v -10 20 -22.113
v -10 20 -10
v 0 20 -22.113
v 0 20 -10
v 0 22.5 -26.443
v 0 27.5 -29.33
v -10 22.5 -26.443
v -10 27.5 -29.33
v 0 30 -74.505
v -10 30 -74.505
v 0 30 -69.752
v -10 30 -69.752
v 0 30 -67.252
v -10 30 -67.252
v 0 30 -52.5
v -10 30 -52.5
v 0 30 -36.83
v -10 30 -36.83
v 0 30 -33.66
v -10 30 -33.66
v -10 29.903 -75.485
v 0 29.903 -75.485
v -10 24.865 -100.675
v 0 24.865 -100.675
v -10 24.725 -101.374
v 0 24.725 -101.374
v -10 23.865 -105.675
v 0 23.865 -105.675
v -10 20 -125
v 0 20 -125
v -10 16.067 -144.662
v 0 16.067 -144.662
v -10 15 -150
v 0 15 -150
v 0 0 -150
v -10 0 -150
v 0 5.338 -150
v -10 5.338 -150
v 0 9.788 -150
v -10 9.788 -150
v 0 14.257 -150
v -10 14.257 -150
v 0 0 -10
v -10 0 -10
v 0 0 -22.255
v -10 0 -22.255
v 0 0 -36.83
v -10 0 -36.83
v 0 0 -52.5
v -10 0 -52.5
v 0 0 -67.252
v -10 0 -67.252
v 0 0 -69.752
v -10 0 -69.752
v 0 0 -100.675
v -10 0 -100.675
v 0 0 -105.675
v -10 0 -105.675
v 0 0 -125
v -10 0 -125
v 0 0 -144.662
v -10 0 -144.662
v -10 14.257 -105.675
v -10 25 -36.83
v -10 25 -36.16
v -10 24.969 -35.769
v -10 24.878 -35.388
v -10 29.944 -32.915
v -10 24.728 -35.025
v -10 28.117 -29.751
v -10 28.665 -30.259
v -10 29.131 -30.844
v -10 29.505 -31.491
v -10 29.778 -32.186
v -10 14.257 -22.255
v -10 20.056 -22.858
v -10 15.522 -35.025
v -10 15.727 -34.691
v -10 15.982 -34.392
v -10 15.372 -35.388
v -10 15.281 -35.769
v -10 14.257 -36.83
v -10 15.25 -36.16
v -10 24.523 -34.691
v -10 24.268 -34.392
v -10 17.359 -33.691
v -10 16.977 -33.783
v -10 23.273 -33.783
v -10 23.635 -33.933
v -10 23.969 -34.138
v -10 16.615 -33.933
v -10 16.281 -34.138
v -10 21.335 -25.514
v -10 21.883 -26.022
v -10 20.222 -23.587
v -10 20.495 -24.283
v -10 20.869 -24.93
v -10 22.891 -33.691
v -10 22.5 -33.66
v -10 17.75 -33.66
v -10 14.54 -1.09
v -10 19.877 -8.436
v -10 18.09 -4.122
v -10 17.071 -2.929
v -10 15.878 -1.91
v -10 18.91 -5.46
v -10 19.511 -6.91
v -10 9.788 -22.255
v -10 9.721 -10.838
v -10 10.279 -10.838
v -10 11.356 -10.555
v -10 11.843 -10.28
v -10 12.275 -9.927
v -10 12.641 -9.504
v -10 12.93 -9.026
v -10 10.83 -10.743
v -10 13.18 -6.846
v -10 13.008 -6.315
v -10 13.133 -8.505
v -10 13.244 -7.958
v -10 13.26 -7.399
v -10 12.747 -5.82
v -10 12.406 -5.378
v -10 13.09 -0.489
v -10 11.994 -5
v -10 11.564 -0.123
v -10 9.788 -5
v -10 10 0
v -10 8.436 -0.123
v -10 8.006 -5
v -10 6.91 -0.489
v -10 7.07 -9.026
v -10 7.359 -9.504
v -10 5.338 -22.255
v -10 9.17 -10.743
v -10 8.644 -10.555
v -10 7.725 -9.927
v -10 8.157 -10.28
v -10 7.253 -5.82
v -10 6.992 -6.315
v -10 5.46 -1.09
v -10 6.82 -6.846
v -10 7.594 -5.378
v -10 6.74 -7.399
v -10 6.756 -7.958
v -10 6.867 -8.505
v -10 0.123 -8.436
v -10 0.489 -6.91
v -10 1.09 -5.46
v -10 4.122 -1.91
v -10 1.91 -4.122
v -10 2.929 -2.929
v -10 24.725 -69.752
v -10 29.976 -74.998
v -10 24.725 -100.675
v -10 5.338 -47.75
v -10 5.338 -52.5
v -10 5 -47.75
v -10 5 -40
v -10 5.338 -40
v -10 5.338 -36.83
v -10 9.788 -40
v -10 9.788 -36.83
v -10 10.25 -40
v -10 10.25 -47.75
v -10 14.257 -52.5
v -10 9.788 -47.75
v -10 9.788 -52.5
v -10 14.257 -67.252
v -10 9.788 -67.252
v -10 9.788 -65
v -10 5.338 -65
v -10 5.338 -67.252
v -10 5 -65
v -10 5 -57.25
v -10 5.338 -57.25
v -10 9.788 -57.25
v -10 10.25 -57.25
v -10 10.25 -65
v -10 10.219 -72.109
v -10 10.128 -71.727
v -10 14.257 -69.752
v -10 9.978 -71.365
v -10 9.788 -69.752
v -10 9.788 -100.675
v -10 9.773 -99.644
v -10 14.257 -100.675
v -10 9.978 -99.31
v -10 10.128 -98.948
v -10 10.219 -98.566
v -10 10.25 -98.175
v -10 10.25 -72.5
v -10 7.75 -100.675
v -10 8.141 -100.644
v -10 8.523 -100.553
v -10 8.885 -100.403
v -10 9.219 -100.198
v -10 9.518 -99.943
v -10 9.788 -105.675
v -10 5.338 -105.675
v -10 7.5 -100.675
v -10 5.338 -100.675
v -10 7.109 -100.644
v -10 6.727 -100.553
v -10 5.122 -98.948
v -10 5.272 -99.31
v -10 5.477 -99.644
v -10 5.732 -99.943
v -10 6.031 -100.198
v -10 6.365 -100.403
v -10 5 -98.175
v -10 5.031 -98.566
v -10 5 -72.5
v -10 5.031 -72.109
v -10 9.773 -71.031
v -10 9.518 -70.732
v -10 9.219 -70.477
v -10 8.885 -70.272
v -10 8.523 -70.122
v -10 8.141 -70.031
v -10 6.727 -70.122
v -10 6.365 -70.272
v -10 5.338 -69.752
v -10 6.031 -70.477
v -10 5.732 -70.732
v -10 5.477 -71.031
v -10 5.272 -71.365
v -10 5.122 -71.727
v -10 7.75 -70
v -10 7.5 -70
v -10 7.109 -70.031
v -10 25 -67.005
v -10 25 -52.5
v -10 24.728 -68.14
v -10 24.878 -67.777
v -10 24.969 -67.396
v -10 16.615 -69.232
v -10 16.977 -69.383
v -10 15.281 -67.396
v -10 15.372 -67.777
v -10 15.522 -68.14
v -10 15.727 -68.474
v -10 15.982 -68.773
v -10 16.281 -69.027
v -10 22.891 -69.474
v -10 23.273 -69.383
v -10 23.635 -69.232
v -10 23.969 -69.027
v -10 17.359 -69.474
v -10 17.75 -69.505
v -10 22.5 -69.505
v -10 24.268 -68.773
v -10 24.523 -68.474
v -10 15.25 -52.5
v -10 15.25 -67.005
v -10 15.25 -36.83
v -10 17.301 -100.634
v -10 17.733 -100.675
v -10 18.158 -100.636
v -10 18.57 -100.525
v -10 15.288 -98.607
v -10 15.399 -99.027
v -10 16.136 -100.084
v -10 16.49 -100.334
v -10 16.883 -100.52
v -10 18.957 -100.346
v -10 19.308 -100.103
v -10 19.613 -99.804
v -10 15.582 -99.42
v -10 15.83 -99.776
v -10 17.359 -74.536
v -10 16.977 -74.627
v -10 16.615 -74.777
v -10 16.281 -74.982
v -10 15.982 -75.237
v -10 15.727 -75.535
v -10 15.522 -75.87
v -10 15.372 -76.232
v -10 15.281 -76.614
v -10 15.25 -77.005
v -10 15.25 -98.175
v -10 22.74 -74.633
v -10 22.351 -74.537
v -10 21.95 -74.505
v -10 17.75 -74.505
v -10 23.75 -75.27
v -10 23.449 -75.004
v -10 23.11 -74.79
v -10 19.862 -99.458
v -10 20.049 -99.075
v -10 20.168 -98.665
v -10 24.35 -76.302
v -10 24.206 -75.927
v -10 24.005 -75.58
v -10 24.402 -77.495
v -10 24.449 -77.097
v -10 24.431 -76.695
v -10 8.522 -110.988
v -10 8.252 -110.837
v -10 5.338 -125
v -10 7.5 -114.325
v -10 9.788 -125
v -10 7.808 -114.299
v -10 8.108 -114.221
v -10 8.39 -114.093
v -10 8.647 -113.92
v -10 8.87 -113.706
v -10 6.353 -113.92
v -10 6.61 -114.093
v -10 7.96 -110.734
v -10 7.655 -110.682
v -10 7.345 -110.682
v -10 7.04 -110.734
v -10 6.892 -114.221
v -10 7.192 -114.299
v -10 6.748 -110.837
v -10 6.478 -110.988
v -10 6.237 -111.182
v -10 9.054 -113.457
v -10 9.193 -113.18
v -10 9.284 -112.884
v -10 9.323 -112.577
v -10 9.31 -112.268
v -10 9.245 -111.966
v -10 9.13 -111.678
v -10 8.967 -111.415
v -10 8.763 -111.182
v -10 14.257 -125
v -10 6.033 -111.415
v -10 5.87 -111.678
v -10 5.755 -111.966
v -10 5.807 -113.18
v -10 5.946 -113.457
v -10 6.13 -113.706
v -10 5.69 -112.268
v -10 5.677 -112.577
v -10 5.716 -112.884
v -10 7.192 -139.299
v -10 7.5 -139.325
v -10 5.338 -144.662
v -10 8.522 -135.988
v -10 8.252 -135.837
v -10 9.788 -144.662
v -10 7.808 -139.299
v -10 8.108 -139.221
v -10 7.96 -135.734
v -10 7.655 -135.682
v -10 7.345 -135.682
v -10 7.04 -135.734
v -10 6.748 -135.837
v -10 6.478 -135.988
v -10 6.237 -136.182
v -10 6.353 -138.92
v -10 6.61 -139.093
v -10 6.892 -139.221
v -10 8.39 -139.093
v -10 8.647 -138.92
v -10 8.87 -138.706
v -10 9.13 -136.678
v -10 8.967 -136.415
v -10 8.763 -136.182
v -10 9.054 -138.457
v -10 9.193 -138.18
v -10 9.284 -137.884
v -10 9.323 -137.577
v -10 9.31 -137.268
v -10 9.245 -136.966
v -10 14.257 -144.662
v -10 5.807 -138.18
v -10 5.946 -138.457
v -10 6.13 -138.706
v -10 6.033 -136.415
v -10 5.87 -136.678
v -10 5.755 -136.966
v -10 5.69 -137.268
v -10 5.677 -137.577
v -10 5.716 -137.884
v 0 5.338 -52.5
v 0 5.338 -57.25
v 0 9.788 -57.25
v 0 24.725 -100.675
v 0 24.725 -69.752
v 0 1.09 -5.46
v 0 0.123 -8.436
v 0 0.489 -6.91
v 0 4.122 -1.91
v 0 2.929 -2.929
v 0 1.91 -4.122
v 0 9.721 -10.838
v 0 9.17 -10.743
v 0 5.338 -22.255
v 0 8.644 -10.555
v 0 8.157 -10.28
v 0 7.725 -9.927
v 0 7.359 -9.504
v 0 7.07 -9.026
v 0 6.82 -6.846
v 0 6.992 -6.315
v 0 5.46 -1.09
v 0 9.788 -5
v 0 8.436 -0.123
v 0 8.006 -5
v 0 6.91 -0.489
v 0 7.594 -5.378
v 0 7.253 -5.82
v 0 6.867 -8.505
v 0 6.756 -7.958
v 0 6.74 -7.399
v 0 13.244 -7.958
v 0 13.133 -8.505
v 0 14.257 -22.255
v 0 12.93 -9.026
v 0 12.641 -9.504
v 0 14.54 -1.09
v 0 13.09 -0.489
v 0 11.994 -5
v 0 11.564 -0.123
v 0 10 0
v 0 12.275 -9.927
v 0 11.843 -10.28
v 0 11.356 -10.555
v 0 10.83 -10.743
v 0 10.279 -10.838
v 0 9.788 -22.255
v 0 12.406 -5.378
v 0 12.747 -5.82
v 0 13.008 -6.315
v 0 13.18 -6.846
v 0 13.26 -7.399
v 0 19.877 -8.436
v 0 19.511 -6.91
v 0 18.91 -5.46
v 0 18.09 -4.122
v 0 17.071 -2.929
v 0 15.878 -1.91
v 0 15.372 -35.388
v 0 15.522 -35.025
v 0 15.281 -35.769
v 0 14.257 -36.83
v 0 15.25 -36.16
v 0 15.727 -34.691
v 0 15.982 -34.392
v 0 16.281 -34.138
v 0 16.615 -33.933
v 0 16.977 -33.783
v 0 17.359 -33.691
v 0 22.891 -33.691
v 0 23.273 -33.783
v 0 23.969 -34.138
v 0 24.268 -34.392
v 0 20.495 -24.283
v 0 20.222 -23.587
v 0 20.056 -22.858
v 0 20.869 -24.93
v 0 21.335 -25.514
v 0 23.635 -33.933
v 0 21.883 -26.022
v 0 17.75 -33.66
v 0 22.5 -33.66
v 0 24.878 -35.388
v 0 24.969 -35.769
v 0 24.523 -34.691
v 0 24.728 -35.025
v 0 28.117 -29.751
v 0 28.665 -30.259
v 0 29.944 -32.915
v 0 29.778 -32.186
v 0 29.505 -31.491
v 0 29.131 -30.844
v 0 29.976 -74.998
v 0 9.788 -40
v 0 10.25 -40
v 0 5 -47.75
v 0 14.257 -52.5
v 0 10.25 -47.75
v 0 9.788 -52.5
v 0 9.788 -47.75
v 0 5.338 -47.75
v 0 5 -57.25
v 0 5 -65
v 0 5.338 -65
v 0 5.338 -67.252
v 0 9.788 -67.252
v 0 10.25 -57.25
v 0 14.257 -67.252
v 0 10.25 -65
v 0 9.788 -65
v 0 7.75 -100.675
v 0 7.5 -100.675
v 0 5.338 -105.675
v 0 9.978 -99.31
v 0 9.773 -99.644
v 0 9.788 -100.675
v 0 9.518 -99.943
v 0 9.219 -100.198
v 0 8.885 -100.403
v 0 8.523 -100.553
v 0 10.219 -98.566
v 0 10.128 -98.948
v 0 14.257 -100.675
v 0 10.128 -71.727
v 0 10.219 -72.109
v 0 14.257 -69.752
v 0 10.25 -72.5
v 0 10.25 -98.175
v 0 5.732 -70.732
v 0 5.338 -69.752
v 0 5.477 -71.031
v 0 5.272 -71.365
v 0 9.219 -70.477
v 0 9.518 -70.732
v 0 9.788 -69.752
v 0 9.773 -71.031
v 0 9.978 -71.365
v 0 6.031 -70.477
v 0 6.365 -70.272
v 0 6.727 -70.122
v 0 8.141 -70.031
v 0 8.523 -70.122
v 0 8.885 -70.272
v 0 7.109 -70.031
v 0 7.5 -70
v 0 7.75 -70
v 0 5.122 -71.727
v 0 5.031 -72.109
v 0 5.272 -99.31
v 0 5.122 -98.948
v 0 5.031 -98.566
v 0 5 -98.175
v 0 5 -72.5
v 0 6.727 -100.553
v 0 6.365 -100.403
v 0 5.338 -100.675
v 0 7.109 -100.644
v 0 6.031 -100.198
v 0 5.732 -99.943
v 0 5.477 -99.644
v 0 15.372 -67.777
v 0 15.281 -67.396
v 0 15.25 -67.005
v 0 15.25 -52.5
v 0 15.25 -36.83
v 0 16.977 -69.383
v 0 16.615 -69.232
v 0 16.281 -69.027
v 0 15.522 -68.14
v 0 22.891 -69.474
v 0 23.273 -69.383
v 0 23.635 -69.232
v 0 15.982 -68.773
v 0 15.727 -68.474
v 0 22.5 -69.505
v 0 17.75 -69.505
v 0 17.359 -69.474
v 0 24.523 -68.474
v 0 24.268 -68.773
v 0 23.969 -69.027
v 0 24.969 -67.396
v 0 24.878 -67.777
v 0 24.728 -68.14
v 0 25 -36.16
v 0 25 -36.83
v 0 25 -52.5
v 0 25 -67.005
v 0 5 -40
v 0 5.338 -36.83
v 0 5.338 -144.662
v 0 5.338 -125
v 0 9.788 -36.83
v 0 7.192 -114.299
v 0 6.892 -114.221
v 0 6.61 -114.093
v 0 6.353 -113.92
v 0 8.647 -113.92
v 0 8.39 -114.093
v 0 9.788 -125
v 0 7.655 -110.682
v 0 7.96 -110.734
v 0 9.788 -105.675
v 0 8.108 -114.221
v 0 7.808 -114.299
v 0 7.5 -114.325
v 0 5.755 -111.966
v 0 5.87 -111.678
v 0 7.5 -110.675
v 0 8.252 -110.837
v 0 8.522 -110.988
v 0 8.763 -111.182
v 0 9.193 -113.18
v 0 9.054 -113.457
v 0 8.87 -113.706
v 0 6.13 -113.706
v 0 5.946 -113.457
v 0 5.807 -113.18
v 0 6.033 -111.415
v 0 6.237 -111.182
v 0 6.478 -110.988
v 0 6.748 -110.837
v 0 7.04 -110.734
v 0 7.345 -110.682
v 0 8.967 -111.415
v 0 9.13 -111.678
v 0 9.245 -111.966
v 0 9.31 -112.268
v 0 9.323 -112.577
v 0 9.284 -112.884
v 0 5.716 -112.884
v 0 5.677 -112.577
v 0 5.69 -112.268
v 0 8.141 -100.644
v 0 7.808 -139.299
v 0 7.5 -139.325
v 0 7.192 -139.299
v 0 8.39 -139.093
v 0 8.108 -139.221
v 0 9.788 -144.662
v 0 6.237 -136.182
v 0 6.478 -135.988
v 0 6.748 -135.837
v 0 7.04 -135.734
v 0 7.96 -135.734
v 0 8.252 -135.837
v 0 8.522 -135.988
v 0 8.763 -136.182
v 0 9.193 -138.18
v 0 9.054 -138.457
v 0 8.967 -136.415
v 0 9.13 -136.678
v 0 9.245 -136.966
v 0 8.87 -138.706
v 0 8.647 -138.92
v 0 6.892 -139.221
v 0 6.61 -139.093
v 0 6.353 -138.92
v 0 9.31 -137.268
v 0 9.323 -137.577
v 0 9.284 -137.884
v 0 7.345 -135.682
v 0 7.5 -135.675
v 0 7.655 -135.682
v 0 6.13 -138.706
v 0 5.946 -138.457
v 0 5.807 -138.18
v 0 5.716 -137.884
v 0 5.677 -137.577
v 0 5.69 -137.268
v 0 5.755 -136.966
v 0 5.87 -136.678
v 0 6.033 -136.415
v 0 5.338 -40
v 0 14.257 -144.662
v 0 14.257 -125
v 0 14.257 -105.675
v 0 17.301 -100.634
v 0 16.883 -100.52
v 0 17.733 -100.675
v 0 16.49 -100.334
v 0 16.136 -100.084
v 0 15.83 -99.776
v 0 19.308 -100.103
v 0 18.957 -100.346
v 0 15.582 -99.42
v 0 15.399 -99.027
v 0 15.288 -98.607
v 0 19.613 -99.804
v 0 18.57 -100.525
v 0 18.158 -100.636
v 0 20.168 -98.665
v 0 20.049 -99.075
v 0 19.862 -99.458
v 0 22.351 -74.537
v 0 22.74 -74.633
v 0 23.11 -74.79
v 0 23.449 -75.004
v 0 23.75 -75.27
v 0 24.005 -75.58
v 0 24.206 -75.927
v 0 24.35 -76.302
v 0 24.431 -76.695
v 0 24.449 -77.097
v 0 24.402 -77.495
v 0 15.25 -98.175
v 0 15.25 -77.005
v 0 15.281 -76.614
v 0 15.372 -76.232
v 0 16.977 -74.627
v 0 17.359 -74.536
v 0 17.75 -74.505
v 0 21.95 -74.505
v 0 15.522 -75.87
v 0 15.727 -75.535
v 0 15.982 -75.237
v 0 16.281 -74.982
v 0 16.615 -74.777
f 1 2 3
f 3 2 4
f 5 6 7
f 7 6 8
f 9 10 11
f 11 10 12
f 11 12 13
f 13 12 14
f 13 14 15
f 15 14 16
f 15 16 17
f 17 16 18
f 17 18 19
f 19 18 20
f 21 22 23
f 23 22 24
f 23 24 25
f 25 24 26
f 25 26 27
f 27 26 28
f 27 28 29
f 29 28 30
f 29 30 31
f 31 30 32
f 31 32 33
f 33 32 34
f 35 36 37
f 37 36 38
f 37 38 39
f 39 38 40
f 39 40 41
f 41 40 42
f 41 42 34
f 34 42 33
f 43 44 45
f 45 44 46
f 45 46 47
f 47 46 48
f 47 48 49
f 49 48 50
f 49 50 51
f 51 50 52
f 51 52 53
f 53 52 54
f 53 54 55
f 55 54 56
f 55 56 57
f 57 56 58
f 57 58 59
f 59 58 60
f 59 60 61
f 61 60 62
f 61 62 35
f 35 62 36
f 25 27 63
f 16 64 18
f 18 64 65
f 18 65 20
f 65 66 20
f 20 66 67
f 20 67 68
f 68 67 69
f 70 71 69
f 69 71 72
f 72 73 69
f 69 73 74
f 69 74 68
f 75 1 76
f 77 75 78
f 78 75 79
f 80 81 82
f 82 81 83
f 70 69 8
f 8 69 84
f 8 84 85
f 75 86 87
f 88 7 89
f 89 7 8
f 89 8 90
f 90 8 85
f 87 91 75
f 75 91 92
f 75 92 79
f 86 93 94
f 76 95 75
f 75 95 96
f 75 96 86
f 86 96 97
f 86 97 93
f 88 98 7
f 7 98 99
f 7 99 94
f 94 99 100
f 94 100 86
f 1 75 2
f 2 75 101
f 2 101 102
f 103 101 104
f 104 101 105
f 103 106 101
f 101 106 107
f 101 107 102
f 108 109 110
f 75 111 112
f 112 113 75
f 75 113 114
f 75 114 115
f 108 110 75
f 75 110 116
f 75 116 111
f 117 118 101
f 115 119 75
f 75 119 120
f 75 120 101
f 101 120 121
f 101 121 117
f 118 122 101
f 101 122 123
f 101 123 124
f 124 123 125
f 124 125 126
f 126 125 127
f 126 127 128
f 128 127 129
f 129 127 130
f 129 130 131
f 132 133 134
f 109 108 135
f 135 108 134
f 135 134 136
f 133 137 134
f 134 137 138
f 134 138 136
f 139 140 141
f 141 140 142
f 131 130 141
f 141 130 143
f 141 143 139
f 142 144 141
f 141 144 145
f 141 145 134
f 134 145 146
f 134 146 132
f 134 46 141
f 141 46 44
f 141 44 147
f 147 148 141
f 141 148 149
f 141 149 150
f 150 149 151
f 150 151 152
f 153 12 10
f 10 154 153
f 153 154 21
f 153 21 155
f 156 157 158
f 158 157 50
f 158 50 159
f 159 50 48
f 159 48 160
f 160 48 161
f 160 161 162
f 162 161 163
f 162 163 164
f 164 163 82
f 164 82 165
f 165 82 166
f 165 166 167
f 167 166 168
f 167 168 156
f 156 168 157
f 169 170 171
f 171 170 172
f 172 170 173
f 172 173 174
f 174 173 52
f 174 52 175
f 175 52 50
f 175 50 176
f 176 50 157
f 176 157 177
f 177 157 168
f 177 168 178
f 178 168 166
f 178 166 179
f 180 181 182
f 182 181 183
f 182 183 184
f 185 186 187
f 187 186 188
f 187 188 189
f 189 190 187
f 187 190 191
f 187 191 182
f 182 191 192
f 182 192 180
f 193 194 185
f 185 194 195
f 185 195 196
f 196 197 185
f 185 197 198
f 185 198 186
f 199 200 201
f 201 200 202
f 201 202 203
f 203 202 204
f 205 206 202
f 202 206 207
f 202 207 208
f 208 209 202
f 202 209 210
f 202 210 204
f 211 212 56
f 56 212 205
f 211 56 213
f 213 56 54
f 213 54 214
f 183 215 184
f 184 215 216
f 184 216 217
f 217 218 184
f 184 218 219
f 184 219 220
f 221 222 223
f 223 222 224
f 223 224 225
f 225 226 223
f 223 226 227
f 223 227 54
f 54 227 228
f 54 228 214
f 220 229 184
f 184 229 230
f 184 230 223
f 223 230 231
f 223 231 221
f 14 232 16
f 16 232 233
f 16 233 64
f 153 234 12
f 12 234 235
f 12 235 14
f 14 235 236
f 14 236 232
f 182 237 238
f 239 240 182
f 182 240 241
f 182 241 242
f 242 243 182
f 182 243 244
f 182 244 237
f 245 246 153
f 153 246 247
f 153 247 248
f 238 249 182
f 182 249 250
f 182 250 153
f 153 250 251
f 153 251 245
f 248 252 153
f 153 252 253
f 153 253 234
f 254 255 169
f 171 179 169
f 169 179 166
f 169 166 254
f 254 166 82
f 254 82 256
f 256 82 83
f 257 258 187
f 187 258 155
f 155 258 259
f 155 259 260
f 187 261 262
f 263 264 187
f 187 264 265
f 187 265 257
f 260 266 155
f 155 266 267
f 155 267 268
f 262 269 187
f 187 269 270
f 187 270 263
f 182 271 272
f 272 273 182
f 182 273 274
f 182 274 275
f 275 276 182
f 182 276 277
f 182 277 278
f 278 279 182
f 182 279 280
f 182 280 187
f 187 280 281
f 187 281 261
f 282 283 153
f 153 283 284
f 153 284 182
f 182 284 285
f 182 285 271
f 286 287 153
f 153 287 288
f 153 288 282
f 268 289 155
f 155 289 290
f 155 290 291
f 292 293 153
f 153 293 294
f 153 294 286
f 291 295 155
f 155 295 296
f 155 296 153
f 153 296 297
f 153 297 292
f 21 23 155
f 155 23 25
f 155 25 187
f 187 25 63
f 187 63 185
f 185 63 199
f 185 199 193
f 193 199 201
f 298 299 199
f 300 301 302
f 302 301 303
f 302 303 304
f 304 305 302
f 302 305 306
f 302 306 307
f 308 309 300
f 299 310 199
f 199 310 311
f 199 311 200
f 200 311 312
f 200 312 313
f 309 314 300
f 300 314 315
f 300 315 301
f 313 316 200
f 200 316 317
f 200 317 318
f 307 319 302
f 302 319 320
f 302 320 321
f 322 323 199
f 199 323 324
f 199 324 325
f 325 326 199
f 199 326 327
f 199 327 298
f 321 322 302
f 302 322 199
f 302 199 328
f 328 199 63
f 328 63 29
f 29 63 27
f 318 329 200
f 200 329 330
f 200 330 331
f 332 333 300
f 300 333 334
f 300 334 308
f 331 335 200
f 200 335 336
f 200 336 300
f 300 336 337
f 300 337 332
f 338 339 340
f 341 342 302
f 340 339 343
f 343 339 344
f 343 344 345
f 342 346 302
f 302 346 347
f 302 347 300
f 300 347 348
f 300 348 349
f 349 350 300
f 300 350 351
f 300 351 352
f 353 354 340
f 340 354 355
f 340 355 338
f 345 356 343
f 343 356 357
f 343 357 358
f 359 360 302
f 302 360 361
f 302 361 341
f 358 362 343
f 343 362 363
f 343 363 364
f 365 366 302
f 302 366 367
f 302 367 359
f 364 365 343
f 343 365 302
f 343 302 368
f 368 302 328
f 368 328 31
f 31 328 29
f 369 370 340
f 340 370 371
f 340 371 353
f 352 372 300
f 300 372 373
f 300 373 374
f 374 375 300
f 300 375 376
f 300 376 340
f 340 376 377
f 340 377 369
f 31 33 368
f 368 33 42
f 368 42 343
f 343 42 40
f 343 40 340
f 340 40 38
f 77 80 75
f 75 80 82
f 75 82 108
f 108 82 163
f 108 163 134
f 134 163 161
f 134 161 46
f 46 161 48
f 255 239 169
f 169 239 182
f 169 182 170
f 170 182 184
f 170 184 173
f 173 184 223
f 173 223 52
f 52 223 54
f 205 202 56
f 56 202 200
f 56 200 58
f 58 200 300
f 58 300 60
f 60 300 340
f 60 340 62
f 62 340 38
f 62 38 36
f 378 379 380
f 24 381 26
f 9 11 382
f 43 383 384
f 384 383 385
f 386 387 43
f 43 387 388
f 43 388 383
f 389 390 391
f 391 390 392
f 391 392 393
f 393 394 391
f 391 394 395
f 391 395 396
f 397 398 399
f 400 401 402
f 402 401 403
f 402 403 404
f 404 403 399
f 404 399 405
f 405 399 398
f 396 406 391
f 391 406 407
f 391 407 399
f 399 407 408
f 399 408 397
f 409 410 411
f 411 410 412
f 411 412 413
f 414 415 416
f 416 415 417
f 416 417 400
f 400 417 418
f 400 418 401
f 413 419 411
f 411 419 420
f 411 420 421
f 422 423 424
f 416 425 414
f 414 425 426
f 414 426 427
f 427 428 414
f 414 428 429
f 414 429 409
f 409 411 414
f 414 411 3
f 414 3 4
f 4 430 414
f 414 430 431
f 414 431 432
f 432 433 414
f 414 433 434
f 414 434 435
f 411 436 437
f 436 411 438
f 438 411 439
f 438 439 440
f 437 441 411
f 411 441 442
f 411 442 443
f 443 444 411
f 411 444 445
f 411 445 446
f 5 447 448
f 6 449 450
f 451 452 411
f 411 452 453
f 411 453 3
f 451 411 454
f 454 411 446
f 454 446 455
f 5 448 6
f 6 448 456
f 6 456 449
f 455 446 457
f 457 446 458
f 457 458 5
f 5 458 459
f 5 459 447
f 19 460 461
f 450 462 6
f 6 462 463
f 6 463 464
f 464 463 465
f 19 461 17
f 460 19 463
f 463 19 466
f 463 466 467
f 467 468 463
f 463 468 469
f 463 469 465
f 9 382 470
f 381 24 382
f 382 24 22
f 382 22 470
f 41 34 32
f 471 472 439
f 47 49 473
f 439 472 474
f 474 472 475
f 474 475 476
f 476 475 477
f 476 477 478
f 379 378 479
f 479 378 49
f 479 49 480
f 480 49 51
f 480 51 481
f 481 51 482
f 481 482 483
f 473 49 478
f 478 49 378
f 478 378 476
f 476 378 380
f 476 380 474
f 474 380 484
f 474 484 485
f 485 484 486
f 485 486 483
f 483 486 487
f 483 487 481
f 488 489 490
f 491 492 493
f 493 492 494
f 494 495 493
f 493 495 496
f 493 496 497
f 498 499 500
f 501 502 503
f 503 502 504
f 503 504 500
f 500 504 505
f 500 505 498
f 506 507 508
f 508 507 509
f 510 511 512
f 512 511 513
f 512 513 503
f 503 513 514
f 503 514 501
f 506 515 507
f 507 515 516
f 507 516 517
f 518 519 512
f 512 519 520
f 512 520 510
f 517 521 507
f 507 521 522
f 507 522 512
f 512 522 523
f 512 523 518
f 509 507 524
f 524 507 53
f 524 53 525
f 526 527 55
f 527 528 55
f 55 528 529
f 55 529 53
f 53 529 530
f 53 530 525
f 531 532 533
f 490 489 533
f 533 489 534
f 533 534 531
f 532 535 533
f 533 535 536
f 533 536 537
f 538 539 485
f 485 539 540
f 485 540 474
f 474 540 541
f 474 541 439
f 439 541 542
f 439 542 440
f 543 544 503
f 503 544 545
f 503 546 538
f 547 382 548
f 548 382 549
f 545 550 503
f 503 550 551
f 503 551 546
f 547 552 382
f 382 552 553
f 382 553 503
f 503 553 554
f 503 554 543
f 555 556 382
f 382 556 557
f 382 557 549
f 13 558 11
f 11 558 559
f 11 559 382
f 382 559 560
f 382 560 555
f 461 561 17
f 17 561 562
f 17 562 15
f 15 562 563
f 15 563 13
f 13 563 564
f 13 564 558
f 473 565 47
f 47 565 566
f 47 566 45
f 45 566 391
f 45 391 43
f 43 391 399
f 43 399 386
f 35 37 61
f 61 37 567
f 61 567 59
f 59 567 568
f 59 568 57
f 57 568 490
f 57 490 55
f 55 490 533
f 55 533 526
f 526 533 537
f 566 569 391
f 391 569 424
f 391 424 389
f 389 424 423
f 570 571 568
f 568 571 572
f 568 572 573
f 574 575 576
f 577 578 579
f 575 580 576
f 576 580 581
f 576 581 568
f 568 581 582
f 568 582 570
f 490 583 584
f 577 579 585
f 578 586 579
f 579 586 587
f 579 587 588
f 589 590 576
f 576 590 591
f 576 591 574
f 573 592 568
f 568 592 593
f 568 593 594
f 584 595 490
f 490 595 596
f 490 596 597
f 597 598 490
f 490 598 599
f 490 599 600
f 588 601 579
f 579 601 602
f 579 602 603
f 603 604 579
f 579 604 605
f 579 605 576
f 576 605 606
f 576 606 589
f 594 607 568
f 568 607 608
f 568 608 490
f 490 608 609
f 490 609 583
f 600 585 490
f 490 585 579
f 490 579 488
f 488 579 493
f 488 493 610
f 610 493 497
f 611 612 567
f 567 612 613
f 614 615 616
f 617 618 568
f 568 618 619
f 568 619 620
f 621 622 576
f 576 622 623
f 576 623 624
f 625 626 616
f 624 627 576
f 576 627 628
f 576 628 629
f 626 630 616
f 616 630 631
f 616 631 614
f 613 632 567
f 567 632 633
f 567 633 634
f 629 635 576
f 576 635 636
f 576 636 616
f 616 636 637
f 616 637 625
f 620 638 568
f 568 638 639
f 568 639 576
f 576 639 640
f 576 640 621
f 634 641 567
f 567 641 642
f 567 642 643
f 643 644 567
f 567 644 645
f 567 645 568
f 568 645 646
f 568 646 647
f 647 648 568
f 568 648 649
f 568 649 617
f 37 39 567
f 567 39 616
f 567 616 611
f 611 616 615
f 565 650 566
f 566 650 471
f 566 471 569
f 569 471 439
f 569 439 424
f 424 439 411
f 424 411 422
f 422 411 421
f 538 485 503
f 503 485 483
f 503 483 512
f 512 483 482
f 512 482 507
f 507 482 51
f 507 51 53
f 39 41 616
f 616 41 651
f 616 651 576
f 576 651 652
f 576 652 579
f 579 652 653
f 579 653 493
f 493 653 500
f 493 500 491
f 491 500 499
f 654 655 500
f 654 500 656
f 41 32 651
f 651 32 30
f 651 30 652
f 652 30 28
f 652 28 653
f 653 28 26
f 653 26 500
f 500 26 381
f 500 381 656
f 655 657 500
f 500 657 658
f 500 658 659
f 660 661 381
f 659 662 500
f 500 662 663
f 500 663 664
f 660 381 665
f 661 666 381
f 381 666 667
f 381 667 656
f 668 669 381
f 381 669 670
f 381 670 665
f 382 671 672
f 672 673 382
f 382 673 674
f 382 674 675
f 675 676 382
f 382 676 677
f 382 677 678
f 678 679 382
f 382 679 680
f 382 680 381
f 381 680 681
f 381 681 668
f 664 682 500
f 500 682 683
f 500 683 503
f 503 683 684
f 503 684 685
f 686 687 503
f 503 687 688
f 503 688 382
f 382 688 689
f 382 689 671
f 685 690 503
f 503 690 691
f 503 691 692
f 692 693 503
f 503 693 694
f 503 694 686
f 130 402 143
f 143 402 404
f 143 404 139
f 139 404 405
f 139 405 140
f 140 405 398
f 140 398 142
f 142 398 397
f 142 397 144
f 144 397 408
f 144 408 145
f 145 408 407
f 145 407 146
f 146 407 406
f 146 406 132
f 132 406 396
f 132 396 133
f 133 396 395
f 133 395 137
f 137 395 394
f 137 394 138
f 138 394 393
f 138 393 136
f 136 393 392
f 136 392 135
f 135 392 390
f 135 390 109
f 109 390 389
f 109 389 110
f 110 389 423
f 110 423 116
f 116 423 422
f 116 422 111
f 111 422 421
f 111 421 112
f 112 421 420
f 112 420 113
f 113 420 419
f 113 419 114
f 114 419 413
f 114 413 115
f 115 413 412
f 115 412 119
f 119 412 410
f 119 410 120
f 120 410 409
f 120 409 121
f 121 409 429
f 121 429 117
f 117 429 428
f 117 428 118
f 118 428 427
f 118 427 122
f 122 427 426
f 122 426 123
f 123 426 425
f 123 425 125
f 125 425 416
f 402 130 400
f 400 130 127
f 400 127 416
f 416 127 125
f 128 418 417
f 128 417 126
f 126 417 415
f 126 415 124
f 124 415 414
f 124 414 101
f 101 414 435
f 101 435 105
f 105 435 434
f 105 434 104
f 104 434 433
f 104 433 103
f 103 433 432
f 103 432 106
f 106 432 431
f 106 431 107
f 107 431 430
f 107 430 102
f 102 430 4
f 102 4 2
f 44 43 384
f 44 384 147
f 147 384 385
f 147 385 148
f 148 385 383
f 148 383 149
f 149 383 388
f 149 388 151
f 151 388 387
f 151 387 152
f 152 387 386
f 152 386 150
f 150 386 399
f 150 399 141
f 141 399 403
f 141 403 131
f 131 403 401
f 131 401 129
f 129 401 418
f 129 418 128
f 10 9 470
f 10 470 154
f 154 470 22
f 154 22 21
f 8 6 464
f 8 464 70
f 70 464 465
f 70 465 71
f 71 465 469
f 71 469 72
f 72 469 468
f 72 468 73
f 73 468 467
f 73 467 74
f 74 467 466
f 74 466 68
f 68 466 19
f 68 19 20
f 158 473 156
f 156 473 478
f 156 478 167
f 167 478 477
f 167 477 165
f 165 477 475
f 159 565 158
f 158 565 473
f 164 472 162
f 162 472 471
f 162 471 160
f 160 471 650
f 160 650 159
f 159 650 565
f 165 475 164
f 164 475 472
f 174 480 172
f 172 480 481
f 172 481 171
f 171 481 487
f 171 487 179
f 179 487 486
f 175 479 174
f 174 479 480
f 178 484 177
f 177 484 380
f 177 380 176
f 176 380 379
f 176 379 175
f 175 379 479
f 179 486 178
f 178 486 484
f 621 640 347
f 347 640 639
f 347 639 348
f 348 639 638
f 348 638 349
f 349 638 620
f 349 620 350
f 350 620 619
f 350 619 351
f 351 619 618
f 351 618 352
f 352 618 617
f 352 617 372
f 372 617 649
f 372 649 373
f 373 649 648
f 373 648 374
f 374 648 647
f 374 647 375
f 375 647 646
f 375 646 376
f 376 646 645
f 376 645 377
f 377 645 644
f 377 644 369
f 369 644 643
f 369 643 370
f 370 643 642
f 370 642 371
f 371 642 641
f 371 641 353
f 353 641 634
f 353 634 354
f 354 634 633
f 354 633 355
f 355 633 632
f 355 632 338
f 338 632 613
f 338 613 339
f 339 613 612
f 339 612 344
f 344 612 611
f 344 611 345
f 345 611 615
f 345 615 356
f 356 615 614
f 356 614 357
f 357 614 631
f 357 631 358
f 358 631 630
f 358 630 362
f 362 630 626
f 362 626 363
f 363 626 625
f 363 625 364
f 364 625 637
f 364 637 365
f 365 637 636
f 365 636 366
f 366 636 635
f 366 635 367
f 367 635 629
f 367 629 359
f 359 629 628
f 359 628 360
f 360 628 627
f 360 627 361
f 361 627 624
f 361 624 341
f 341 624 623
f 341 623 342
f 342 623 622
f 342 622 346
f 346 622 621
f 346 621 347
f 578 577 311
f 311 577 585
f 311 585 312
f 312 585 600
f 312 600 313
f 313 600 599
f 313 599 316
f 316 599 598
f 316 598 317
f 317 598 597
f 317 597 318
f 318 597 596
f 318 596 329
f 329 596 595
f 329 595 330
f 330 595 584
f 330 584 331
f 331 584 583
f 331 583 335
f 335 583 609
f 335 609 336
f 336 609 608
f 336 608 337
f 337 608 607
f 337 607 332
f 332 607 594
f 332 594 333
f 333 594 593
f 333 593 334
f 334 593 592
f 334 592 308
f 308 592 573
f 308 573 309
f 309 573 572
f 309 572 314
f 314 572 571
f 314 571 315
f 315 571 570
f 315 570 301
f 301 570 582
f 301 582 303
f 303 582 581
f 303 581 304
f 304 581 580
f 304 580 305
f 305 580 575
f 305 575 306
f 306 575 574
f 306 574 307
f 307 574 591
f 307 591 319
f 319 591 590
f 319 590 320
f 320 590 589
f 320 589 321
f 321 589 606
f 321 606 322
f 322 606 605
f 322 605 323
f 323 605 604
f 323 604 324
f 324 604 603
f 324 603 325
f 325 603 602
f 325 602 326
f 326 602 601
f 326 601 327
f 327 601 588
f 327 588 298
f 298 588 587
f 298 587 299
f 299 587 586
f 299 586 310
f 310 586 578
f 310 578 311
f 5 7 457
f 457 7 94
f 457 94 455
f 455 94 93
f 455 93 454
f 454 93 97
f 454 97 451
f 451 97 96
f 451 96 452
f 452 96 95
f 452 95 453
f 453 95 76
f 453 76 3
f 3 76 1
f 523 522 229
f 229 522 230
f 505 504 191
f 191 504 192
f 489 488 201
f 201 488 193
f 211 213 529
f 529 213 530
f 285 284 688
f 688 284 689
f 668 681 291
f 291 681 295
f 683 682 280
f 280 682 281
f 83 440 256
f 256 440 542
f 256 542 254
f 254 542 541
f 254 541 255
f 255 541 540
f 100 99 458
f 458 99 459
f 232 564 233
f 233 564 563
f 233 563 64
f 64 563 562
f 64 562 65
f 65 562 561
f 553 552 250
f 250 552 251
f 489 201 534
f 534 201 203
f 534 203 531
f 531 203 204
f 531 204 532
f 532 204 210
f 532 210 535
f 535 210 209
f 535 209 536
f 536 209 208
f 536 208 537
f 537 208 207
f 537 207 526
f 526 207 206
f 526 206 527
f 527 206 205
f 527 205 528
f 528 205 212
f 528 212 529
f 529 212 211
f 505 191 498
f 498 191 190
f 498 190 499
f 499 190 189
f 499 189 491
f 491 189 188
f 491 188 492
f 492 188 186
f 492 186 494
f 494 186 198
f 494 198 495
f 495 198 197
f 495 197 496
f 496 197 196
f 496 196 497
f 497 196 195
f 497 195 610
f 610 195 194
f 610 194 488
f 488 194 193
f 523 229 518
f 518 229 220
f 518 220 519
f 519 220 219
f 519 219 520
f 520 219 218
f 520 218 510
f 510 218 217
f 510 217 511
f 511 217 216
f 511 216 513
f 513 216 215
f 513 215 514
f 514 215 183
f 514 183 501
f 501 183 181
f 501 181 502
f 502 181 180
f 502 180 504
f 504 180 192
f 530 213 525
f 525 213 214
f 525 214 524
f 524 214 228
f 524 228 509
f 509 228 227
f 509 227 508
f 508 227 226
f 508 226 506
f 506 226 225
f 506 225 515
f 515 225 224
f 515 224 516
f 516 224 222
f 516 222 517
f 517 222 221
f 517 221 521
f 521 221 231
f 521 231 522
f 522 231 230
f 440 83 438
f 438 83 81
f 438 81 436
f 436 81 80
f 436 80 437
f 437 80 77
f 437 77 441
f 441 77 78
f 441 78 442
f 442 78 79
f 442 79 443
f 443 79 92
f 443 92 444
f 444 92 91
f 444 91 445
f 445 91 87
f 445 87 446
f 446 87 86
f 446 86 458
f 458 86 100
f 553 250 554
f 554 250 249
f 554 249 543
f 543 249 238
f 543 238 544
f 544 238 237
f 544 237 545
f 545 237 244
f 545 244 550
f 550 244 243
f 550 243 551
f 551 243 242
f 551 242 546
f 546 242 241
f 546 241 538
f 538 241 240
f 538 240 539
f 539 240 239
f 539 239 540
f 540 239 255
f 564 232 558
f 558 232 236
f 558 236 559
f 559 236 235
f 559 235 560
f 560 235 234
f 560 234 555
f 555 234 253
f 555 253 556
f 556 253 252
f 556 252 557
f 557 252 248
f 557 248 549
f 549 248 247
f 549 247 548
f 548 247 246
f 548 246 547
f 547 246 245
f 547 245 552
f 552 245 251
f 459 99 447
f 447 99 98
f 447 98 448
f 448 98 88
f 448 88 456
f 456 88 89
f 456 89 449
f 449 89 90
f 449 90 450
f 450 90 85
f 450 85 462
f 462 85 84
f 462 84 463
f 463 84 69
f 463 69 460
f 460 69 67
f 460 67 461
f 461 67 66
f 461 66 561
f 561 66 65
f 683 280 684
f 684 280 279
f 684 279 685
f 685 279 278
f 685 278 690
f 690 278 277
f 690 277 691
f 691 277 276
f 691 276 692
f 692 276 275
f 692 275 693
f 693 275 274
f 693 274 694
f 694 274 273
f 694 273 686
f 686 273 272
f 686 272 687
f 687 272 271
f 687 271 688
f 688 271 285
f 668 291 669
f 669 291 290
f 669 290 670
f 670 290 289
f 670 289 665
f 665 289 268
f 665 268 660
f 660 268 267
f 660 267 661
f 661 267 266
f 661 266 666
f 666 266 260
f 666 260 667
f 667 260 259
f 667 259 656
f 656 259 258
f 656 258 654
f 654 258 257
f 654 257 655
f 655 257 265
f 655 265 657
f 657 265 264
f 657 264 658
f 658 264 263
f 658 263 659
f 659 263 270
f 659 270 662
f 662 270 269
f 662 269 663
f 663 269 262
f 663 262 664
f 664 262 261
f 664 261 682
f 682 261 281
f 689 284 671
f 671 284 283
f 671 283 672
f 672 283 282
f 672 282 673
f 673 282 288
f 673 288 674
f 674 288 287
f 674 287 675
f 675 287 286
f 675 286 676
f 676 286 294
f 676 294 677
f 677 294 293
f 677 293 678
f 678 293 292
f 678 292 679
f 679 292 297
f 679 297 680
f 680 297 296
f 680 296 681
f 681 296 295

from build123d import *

# Parameters (mm, degrees)
BOSS_EXTRUDE1_DEPTH     = 10
CUT_EXTRUDE2_DEPTH      = 154.297097168
FILLET1_R               = 10
FILLET2_R               = 5
CUT_EXTRUDE3_DEPTH      = 154.297097168
CUT_EXTRUDE3_DEPTH_BACK = 154.297097168
SKETCH3_W               = 7.75
SKETCH3_H               = 5.25
CUT_EXTRUDE6_DEPTH      = 154.297097168
CUT_EXTRUDE6_DEPTH_BACK = 154.297097168
SKETCH6_R               = 1.825
FILLET3_R               = 5
CUT_EXTRUDE7_DEPTH      = 154.297097168
CUT_EXTRUDE7_DEPTH_BACK = 154.297097168
SKETCH7_W               = 35.844648394
SKETCH7_H               = 9.75
SKETCH7_W_2             = 30.675
SKETCH7_H_2             = 5.25
FILLET4_R               = 2.5


# Some blends are built 0.0001 mm under size
with BuildPart() as part:
    # Sketch1 → Boss-Extrude1 (new body)
    with BuildSketch(Plane(origin=(0, 0, 0), x_dir=(0, 0, -1), z_dir=(1, 0, 0))):
        Polygon((0, 0), (150, 0), (150, 15), (75, 30), (30.773502692, 30), (25, 20), (0, 20), align=None)
    extrude(amount=-BOSS_EXTRUDE1_DEPTH)

    # Sketch2 → Cut-Extrude2 (cut, through all)
    with BuildSketch(Plane(origin=(0, 0, 0), x_dir=(0, 0, -1), z_dir=(1, 0, 0))):
        with BuildLine():
            Line((5, 11.964942747), (5, 8.035057253))
            ThreePointArc((5, 8.035057253), (10.85, 10), (5, 11.964942747))
        make_face()
    extrude(amount=-CUT_EXTRUDE2_DEPTH, mode=Mode.SUBTRACT)

    # Fillet1
    fillet1_edges = [part.edges().sort_by_distance(p)[0] for p in [
        (-5, 0, 0),
        (-5, 20, 0),
    ]]
    fillet(fillet1_edges, radius=FILLET1_R - 0.0001)  # a hair under: the kernel refuses the full size

    # Fillet2
    fillet2_edges = [part.edges().sort_by_distance(p)[0] for p in [
        (-5, 30, -30.773502692),
        (-5, 30, -75),
    ]]
    fillet(fillet2_edges, radius=FILLET2_R)

    # Sketch3 → Cut-Extrude3 (cut, two sides: drawn at the far end of the back side and taken through both)
    with BuildSketch(Plane(origin=(0, 0, 0), x_dir=(0, 0, -1), z_dir=(1, 0, 0)).offset(-CUT_EXTRUDE3_DEPTH_BACK)):
        with Locations((61.125, 7.625)):
            Rectangle(SKETCH3_W, SKETCH3_H)
        with Locations((43.875, 7.625)):
            Rectangle(SKETCH3_W, SKETCH3_H)
    extrude(amount=CUT_EXTRUDE3_DEPTH + CUT_EXTRUDE3_DEPTH_BACK, mode=Mode.SUBTRACT)

    # Sketch6 → Cut-Extrude6 (cut, two sides: drawn at the far end of the back side and taken through both)
    with BuildSketch(Plane(origin=(0, 0, 0), x_dir=(0, 0, -1), z_dir=(1, 0, 0)).offset(-CUT_EXTRUDE6_DEPTH_BACK)):
        with Locations((112.5, 7.5)):
            Circle(SKETCH6_R)
        with Locations((137.5, 7.5)):
            Circle(SKETCH6_R)
    extrude(amount=CUT_EXTRUDE6_DEPTH + CUT_EXTRUDE6_DEPTH_BACK, mode=Mode.SUBTRACT)

    # Fillet3
    fillet3_edges = [part.edges().sort_by_distance(p)[0] for p in [
        (-5, 20, -25),
    ]]
    fillet(fillet3_edges, radius=FILLET3_R)

    # Sketch7 → Cut-Extrude7 (cut, two sides: drawn at the far end of the back side and taken through both)
    with BuildSketch(Plane(origin=(0, 0, 0), x_dir=(0, 0, -1), z_dir=(1, 0, 0)).offset(-CUT_EXTRUDE7_DEPTH_BACK)):
        with Locations((51.582578235, 20.125)):
            Rectangle(SKETCH7_W, SKETCH7_H)
        with Locations((85.3375, 7.625)):
            Rectangle(SKETCH7_W_2, SKETCH7_H_2)
        Polygon((100.675, 15.25), (100.675, 19.765980486), (74.504902432, 25), (74.504902432, 15.25), align=None)
    extrude(amount=CUT_EXTRUDE7_DEPTH + CUT_EXTRUDE7_DEPTH_BACK, mode=Mode.SUBTRACT)

    # Fillet4
    # the kernel refuses this fillet: 2.5 mm, written as the material it adds along each edge
    with BuildSketch(Plane(origin=(0, 15.25, -69.504902432), x_dir=(0, 0, 1), z_dir=(-1, 0, 0)), Plane(origin=(-10, 25, -33.660254038), x_dir=(0, -1, 0), z_dir=(1, 0, 0)), Plane(origin=(0, 25, -69.504902432), x_dir=(0, -1, 0), z_dir=(-1, 0, 0)), Plane(origin=(0, 15.25, -74.504902432), x_dir=(0, 1, 0), z_dir=(-1, 0, 0)), Plane(origin=(0, 15.25, -100.675), x_dir=(0, 0, 1), z_dir=(-1, 0, 0)), Plane(origin=(0, 5, -100.675), x_dir=(0, 0, 1), z_dir=(-1, 0, 0))) as fillet4_piece_1:
        with BuildLine():
            CenterArc((FILLET4_R, FILLET4_R), FILLET4_R, 180, 90)
            Line((0, FILLET4_R), (0, 0))
            Line((0, 0), (FILLET4_R, 0))
        make_face()
    extrude(amount=10)
    with BuildSketch(Plane(origin=(-10, 15.25, -33.660254038), x_dir=(0, 1, 0), z_dir=(1, 0, 0)), Plane(origin=(-10, 5, -70), x_dir=(0, 1, 0), z_dir=(1, 0, 0)), Plane(origin=(-10, 10.25, -70), x_dir=(0, 0, -1), z_dir=(1, 0, 0)), Plane(origin=(0, 10.25, -100.675), x_dir=(0, 0, 1), z_dir=(-1, 0, 0))) as fillet4_piece_2:
        with BuildLine():
            CenterArc((FILLET4_R, -FILLET4_R), FILLET4_R, 90, 90)
            Line((0, -FILLET4_R), (0, 0))
            Line((0, 0), (FILLET4_R, 0))
        make_face()
    extrude(amount=10)
    with BuildSketch(Plane(origin=(-10, 25, -74.504902432), x_dir=(0, -0.1961161351381845, -0.9805806756909201), z_dir=(1, 0, 0))) as fillet4_piece_3:
        with BuildLine():
            CenterArc((FILLET4_R * 1.21980390272, -FILLET4_R), FILLET4_R, 90, 101.309932474)
            Line((FILLET4_R * 0.239223227028, -FILLET4_R * 1.19611613514), (0, 0))
            Line((0, 0), (FILLET4_R * 1.21980390272, 0))
        make_face()
    extrude(amount=10)
    with BuildSketch(Plane(origin=(-10, 19.765980486, -100.675), x_dir=(0, 0.19611613513818169, 0.9805806756909206), z_dir=(1, 0, 0))) as fillet4_piece_4:
        with BuildLine():
            CenterArc((FILLET4_R * 0.819803902719, FILLET4_R), FILLET4_R, 191.309932474, 78.690067526)
            Line((-FILLET4_R * 0.160776772972, FILLET4_R * 0.803883864862), (0, 0))
            Line((0, 0), (FILLET4_R * 0.819803902719, 0))
        make_face()
    extrude(amount=10)


solid = part.part
